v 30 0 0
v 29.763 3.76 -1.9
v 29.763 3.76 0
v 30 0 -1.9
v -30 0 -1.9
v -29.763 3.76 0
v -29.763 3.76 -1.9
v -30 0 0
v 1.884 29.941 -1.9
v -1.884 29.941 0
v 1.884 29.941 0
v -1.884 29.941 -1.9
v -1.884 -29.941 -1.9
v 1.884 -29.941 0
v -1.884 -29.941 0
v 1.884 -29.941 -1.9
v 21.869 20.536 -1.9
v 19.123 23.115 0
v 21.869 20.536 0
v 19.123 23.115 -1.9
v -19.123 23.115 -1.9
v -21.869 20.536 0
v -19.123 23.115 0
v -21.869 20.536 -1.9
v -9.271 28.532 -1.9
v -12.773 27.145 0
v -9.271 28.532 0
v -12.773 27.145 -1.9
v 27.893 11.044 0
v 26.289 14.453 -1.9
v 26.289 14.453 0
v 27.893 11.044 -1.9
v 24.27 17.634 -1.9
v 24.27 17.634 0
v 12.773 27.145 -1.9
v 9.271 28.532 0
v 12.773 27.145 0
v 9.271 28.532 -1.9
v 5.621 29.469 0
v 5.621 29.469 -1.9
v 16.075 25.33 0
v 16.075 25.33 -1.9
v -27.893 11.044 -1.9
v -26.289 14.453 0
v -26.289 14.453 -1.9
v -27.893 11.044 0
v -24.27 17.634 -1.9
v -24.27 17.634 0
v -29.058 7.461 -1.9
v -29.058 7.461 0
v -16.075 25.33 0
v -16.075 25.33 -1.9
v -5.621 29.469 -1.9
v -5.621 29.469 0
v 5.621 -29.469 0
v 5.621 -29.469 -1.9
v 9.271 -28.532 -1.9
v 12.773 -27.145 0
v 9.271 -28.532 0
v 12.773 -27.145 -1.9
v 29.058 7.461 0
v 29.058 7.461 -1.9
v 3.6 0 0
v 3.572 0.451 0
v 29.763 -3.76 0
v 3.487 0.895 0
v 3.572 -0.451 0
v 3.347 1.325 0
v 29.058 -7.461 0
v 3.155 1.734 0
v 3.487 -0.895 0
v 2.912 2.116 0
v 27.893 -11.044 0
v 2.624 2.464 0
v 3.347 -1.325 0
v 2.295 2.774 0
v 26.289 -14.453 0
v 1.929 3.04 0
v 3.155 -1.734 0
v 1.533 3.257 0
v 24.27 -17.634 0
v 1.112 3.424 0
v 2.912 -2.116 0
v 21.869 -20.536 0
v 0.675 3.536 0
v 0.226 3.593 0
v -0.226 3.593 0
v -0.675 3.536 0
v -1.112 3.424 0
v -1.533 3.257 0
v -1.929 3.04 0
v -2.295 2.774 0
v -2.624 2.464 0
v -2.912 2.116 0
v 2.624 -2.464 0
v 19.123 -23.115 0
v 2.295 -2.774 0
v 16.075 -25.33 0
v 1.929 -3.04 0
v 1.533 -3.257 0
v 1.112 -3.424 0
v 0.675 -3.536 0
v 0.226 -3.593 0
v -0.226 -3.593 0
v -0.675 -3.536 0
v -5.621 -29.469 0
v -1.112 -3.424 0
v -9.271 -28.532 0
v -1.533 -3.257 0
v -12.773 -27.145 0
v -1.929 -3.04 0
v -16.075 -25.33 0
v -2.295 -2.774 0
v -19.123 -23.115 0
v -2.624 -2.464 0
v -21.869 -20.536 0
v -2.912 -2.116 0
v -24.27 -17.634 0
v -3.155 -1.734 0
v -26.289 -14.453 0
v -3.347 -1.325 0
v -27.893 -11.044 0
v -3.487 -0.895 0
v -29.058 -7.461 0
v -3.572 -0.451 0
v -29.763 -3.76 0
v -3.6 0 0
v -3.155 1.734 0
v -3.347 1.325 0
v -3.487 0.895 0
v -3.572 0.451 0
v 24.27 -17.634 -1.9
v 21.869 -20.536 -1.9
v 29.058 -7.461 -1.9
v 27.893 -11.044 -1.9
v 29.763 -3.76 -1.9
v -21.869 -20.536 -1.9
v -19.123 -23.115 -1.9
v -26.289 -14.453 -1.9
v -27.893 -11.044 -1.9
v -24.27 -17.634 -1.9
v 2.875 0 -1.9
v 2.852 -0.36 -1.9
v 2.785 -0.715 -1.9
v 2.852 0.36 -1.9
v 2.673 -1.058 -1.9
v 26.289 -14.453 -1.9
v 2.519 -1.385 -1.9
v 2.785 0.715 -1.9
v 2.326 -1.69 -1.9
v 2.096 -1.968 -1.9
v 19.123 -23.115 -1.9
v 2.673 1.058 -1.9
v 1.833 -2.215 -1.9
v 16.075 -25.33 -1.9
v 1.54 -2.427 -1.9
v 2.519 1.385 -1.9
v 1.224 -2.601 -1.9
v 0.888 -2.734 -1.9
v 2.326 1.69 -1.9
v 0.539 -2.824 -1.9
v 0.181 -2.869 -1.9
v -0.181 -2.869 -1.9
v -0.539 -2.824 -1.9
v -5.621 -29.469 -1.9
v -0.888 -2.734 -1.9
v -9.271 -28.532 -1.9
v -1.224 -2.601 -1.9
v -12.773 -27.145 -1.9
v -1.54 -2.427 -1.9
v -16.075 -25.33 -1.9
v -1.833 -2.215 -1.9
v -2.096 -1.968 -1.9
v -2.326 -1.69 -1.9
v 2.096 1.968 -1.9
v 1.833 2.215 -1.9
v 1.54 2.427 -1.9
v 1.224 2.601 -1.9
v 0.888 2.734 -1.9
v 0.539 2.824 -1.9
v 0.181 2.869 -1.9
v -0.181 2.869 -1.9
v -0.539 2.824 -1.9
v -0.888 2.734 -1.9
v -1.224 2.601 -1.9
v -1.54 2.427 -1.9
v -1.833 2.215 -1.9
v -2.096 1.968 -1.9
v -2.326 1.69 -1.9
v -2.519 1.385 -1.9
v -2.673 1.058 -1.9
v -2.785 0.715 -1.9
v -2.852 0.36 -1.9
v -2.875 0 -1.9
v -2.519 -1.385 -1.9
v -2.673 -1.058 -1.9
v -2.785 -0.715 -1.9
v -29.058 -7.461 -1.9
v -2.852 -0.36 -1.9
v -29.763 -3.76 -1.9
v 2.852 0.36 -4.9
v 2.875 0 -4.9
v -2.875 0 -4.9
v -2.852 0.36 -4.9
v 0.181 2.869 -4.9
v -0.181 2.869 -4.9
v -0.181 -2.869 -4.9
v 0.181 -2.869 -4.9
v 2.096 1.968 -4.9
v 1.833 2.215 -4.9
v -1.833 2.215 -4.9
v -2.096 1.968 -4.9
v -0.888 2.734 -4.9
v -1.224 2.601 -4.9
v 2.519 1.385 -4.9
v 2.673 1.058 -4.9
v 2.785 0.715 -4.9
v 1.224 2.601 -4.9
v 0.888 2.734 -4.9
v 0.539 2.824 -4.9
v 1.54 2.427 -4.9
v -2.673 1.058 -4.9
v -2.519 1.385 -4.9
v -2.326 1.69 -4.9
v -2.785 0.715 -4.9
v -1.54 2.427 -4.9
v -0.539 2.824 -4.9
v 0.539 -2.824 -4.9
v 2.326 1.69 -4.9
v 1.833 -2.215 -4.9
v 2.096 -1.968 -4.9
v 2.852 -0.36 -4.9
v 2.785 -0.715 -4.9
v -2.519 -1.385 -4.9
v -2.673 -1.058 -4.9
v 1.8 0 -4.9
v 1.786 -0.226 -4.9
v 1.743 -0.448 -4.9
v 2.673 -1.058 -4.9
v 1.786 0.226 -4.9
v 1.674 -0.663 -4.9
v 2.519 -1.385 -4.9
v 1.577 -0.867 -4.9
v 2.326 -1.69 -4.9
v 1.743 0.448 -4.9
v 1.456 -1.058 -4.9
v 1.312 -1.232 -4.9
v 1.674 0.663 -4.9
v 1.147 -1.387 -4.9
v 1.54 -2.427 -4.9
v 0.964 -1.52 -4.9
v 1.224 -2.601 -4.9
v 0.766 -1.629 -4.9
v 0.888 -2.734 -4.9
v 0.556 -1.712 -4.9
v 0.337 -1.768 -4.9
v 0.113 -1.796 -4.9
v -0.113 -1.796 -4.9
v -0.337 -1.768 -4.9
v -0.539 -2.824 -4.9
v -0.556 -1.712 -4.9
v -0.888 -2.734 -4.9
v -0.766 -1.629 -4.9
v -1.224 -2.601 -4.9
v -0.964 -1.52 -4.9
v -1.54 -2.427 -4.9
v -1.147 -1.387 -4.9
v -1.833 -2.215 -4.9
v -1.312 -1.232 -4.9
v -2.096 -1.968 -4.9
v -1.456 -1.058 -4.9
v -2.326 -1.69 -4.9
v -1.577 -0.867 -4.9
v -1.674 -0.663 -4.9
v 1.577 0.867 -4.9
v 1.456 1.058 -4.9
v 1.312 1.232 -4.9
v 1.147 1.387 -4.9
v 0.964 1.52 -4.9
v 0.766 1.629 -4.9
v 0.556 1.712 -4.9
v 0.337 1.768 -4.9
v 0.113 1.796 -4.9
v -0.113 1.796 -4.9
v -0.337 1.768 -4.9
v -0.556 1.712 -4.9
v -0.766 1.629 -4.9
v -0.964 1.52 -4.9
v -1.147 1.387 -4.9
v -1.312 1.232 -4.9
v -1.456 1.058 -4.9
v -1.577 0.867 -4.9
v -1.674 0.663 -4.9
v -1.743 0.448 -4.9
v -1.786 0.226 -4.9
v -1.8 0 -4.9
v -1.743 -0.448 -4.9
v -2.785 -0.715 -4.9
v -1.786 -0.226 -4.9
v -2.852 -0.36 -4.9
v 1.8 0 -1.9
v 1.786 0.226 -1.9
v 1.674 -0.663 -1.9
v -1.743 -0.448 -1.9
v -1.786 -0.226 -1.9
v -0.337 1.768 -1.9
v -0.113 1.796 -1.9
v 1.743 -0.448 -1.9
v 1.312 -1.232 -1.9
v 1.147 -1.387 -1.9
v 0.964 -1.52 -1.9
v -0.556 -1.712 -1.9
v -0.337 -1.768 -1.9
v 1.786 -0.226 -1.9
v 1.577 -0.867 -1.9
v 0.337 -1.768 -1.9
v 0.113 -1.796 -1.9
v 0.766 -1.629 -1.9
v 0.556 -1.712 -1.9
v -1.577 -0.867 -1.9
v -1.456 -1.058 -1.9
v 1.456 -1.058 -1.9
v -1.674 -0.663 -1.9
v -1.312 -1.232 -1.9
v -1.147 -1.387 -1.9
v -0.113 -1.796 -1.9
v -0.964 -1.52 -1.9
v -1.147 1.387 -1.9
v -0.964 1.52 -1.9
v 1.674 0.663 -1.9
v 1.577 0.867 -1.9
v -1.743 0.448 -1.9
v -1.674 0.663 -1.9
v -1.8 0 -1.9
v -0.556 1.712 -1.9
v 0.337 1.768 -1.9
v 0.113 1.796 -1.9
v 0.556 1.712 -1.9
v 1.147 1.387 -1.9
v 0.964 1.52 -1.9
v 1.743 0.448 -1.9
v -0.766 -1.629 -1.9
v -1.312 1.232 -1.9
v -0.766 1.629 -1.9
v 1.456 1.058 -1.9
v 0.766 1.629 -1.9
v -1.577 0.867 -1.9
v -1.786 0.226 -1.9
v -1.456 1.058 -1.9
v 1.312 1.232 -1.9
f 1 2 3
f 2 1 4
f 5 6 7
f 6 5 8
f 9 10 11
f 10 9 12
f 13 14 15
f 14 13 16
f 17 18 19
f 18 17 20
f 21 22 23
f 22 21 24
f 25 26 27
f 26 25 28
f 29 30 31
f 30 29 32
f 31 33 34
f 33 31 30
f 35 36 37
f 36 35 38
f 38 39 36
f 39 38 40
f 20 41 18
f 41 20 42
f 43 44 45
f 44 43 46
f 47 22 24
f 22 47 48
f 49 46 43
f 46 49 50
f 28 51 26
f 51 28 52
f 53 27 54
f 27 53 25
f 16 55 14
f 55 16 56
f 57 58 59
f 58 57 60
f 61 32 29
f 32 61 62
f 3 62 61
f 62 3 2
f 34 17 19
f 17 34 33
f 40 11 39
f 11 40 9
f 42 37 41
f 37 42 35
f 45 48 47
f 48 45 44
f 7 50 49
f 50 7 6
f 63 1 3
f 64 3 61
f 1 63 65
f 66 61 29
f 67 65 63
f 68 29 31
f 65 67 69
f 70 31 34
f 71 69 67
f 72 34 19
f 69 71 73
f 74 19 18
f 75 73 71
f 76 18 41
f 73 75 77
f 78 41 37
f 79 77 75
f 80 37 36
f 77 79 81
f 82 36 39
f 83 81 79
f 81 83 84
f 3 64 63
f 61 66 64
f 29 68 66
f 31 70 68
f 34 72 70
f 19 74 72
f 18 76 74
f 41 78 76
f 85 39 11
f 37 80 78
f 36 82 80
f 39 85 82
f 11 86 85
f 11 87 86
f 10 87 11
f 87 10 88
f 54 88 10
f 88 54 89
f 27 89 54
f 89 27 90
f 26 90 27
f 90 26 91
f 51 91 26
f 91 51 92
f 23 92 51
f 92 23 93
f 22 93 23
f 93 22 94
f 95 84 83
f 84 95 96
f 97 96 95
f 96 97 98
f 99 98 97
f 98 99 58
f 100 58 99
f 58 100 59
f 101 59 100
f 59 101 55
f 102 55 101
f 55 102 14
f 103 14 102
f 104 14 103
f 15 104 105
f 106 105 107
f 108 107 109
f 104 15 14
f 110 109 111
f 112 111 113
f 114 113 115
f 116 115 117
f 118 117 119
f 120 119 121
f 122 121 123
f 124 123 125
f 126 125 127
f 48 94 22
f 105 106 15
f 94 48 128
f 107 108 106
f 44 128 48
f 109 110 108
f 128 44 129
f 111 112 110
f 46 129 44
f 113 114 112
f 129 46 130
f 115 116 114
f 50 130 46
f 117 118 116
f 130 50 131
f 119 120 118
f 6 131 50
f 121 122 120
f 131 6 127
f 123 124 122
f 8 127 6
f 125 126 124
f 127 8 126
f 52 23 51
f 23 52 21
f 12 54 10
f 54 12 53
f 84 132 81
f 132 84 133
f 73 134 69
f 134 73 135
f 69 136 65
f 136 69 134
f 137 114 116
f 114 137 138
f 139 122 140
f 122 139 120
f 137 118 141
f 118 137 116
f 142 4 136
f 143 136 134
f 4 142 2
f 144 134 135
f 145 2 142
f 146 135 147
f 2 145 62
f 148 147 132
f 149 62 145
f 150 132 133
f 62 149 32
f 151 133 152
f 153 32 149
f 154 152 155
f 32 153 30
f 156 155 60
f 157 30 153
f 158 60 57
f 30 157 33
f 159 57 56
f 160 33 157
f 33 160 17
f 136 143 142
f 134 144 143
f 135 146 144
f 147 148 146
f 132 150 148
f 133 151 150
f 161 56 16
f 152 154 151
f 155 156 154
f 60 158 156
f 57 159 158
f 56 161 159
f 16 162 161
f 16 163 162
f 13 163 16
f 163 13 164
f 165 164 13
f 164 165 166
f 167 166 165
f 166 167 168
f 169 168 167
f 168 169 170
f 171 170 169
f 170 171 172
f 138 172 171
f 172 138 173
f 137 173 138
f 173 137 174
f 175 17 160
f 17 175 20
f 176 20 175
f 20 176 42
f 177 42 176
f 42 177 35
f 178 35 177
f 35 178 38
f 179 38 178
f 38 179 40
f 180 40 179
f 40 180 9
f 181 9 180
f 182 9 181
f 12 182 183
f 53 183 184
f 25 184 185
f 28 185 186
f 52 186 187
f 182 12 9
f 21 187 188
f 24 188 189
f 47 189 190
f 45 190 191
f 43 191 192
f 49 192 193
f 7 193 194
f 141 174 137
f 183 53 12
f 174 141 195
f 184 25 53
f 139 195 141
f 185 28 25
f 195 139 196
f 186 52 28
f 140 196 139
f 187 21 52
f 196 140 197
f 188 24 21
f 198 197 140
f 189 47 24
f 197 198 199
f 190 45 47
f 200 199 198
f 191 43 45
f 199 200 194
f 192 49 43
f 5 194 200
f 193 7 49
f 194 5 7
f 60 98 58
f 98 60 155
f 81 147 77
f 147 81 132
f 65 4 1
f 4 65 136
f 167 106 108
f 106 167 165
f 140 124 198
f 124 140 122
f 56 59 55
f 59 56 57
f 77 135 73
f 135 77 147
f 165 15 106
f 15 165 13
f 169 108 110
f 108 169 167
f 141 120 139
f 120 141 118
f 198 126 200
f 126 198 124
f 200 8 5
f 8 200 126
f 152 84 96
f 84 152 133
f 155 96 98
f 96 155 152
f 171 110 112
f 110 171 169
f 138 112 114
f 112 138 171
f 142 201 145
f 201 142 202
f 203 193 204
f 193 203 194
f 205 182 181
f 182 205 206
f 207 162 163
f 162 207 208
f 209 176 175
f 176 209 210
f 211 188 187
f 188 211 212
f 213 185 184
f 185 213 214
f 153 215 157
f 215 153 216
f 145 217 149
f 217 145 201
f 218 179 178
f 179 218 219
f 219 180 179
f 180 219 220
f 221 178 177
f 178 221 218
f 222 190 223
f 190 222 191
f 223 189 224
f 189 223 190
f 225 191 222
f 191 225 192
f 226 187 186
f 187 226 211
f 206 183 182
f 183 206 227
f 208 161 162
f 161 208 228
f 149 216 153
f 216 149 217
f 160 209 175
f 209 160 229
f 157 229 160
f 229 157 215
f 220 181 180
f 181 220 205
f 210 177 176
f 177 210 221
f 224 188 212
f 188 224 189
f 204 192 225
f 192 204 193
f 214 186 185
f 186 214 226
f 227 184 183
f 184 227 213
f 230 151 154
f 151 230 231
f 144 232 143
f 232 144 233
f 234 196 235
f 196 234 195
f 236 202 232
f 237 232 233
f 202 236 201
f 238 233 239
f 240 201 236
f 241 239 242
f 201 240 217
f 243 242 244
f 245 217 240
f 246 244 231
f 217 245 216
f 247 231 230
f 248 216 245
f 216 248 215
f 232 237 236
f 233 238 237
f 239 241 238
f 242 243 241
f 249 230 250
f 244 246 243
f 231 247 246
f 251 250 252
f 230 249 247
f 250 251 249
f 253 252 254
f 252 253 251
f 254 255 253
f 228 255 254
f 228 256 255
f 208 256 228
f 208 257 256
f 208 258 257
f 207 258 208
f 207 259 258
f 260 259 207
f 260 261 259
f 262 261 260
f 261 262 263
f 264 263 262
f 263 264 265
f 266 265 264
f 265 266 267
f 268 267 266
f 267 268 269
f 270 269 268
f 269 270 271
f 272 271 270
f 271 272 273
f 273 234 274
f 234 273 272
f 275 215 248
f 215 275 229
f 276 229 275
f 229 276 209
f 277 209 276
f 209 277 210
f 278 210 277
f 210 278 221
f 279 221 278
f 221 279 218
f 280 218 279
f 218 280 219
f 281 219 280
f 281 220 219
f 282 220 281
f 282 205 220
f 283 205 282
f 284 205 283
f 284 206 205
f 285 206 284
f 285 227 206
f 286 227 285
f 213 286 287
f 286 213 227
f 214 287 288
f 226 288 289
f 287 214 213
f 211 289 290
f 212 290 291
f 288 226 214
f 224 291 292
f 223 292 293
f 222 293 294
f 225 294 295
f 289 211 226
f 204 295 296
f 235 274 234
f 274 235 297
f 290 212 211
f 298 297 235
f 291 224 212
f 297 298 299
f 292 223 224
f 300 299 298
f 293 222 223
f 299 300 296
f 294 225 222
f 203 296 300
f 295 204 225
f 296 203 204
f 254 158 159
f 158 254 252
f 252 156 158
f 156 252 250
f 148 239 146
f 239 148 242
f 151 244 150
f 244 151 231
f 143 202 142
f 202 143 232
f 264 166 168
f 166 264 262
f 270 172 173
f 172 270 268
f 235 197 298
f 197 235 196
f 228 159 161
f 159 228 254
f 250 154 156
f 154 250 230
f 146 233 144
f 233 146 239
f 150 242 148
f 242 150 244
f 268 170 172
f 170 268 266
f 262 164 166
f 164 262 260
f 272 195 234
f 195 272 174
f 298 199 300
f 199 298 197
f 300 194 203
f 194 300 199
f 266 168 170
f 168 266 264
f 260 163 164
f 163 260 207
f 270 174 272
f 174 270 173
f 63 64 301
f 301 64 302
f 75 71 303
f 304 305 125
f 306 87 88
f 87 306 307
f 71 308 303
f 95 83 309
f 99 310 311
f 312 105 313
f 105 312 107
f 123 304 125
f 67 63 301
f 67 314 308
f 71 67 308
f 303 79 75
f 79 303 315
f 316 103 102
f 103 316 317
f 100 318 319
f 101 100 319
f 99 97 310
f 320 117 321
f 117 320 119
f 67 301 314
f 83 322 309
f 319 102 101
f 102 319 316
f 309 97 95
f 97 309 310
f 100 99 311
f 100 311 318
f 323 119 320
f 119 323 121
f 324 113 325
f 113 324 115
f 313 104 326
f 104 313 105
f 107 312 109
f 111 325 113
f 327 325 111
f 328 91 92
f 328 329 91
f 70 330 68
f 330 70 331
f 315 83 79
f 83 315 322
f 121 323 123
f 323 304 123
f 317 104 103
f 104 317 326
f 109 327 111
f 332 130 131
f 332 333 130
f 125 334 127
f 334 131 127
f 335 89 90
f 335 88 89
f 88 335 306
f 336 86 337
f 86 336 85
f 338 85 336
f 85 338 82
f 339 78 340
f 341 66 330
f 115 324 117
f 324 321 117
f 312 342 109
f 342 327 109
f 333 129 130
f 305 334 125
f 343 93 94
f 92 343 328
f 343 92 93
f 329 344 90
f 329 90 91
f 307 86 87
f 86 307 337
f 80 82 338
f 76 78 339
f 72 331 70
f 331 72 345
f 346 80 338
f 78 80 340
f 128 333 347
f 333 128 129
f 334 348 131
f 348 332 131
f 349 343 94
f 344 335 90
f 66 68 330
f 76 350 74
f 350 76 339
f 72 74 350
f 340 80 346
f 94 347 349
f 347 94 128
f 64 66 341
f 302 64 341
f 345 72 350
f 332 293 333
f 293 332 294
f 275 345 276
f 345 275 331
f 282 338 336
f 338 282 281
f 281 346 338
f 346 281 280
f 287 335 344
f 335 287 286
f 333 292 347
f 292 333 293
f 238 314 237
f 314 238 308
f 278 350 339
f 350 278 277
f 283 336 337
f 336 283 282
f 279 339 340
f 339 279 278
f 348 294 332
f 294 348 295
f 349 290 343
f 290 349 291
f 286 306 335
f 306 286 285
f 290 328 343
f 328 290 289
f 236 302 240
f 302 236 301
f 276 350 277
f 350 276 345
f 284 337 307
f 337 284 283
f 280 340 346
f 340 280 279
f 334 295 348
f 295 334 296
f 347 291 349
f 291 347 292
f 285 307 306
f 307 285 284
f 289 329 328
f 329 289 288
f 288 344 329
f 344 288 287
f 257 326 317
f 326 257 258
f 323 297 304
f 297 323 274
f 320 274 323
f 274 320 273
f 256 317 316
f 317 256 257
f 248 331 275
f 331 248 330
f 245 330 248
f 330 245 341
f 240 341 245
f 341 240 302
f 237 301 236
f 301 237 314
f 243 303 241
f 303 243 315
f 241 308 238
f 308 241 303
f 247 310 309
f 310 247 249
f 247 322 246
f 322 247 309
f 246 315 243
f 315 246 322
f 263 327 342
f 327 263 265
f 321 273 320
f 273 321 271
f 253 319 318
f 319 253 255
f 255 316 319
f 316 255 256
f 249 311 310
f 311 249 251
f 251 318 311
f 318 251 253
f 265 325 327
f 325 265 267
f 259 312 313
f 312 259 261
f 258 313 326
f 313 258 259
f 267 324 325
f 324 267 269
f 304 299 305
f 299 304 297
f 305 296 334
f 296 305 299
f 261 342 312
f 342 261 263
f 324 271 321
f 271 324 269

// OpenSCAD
$fn = 50;


difference() {
	union() {
		translate(v = [0, 0, -1.9000000000]) {
			cylinder(h = 1.9000000000, r = 30.0000000000);
		}
		translate(v = [0, 0, -4.9000000000]) {
			cylinder(h = 4.9000000000, r = 2.8750000000);
		}
	}
	union() {
		translate(v = [0, 0, 0]) {
			rotate(a = [0, 0, 0]) {
				difference() {
					union() {
						translate(v = [0, 0, -4.9000000000]) {
							cylinder(h = 4.9000000000, r = 1.5000000000);
						}
						translate(v = [0, 0, -1.9000000000]) {
							cylinder(h = 1.9000000000, r1 = 1.8000000000, r2 = 3.6000000000);
						}
						translate(v = [0, 0, -4.9000000000]) {
							cylinder(h = 4.9000000000, r = 1.8000000000);
						}
						translate(v = [0, 0, -4.9000000000]) {
							cylinder(h = 4.9000000000, r = 1.5000000000);
						}
					}
					union();
				}
			}
		}
	}
}
